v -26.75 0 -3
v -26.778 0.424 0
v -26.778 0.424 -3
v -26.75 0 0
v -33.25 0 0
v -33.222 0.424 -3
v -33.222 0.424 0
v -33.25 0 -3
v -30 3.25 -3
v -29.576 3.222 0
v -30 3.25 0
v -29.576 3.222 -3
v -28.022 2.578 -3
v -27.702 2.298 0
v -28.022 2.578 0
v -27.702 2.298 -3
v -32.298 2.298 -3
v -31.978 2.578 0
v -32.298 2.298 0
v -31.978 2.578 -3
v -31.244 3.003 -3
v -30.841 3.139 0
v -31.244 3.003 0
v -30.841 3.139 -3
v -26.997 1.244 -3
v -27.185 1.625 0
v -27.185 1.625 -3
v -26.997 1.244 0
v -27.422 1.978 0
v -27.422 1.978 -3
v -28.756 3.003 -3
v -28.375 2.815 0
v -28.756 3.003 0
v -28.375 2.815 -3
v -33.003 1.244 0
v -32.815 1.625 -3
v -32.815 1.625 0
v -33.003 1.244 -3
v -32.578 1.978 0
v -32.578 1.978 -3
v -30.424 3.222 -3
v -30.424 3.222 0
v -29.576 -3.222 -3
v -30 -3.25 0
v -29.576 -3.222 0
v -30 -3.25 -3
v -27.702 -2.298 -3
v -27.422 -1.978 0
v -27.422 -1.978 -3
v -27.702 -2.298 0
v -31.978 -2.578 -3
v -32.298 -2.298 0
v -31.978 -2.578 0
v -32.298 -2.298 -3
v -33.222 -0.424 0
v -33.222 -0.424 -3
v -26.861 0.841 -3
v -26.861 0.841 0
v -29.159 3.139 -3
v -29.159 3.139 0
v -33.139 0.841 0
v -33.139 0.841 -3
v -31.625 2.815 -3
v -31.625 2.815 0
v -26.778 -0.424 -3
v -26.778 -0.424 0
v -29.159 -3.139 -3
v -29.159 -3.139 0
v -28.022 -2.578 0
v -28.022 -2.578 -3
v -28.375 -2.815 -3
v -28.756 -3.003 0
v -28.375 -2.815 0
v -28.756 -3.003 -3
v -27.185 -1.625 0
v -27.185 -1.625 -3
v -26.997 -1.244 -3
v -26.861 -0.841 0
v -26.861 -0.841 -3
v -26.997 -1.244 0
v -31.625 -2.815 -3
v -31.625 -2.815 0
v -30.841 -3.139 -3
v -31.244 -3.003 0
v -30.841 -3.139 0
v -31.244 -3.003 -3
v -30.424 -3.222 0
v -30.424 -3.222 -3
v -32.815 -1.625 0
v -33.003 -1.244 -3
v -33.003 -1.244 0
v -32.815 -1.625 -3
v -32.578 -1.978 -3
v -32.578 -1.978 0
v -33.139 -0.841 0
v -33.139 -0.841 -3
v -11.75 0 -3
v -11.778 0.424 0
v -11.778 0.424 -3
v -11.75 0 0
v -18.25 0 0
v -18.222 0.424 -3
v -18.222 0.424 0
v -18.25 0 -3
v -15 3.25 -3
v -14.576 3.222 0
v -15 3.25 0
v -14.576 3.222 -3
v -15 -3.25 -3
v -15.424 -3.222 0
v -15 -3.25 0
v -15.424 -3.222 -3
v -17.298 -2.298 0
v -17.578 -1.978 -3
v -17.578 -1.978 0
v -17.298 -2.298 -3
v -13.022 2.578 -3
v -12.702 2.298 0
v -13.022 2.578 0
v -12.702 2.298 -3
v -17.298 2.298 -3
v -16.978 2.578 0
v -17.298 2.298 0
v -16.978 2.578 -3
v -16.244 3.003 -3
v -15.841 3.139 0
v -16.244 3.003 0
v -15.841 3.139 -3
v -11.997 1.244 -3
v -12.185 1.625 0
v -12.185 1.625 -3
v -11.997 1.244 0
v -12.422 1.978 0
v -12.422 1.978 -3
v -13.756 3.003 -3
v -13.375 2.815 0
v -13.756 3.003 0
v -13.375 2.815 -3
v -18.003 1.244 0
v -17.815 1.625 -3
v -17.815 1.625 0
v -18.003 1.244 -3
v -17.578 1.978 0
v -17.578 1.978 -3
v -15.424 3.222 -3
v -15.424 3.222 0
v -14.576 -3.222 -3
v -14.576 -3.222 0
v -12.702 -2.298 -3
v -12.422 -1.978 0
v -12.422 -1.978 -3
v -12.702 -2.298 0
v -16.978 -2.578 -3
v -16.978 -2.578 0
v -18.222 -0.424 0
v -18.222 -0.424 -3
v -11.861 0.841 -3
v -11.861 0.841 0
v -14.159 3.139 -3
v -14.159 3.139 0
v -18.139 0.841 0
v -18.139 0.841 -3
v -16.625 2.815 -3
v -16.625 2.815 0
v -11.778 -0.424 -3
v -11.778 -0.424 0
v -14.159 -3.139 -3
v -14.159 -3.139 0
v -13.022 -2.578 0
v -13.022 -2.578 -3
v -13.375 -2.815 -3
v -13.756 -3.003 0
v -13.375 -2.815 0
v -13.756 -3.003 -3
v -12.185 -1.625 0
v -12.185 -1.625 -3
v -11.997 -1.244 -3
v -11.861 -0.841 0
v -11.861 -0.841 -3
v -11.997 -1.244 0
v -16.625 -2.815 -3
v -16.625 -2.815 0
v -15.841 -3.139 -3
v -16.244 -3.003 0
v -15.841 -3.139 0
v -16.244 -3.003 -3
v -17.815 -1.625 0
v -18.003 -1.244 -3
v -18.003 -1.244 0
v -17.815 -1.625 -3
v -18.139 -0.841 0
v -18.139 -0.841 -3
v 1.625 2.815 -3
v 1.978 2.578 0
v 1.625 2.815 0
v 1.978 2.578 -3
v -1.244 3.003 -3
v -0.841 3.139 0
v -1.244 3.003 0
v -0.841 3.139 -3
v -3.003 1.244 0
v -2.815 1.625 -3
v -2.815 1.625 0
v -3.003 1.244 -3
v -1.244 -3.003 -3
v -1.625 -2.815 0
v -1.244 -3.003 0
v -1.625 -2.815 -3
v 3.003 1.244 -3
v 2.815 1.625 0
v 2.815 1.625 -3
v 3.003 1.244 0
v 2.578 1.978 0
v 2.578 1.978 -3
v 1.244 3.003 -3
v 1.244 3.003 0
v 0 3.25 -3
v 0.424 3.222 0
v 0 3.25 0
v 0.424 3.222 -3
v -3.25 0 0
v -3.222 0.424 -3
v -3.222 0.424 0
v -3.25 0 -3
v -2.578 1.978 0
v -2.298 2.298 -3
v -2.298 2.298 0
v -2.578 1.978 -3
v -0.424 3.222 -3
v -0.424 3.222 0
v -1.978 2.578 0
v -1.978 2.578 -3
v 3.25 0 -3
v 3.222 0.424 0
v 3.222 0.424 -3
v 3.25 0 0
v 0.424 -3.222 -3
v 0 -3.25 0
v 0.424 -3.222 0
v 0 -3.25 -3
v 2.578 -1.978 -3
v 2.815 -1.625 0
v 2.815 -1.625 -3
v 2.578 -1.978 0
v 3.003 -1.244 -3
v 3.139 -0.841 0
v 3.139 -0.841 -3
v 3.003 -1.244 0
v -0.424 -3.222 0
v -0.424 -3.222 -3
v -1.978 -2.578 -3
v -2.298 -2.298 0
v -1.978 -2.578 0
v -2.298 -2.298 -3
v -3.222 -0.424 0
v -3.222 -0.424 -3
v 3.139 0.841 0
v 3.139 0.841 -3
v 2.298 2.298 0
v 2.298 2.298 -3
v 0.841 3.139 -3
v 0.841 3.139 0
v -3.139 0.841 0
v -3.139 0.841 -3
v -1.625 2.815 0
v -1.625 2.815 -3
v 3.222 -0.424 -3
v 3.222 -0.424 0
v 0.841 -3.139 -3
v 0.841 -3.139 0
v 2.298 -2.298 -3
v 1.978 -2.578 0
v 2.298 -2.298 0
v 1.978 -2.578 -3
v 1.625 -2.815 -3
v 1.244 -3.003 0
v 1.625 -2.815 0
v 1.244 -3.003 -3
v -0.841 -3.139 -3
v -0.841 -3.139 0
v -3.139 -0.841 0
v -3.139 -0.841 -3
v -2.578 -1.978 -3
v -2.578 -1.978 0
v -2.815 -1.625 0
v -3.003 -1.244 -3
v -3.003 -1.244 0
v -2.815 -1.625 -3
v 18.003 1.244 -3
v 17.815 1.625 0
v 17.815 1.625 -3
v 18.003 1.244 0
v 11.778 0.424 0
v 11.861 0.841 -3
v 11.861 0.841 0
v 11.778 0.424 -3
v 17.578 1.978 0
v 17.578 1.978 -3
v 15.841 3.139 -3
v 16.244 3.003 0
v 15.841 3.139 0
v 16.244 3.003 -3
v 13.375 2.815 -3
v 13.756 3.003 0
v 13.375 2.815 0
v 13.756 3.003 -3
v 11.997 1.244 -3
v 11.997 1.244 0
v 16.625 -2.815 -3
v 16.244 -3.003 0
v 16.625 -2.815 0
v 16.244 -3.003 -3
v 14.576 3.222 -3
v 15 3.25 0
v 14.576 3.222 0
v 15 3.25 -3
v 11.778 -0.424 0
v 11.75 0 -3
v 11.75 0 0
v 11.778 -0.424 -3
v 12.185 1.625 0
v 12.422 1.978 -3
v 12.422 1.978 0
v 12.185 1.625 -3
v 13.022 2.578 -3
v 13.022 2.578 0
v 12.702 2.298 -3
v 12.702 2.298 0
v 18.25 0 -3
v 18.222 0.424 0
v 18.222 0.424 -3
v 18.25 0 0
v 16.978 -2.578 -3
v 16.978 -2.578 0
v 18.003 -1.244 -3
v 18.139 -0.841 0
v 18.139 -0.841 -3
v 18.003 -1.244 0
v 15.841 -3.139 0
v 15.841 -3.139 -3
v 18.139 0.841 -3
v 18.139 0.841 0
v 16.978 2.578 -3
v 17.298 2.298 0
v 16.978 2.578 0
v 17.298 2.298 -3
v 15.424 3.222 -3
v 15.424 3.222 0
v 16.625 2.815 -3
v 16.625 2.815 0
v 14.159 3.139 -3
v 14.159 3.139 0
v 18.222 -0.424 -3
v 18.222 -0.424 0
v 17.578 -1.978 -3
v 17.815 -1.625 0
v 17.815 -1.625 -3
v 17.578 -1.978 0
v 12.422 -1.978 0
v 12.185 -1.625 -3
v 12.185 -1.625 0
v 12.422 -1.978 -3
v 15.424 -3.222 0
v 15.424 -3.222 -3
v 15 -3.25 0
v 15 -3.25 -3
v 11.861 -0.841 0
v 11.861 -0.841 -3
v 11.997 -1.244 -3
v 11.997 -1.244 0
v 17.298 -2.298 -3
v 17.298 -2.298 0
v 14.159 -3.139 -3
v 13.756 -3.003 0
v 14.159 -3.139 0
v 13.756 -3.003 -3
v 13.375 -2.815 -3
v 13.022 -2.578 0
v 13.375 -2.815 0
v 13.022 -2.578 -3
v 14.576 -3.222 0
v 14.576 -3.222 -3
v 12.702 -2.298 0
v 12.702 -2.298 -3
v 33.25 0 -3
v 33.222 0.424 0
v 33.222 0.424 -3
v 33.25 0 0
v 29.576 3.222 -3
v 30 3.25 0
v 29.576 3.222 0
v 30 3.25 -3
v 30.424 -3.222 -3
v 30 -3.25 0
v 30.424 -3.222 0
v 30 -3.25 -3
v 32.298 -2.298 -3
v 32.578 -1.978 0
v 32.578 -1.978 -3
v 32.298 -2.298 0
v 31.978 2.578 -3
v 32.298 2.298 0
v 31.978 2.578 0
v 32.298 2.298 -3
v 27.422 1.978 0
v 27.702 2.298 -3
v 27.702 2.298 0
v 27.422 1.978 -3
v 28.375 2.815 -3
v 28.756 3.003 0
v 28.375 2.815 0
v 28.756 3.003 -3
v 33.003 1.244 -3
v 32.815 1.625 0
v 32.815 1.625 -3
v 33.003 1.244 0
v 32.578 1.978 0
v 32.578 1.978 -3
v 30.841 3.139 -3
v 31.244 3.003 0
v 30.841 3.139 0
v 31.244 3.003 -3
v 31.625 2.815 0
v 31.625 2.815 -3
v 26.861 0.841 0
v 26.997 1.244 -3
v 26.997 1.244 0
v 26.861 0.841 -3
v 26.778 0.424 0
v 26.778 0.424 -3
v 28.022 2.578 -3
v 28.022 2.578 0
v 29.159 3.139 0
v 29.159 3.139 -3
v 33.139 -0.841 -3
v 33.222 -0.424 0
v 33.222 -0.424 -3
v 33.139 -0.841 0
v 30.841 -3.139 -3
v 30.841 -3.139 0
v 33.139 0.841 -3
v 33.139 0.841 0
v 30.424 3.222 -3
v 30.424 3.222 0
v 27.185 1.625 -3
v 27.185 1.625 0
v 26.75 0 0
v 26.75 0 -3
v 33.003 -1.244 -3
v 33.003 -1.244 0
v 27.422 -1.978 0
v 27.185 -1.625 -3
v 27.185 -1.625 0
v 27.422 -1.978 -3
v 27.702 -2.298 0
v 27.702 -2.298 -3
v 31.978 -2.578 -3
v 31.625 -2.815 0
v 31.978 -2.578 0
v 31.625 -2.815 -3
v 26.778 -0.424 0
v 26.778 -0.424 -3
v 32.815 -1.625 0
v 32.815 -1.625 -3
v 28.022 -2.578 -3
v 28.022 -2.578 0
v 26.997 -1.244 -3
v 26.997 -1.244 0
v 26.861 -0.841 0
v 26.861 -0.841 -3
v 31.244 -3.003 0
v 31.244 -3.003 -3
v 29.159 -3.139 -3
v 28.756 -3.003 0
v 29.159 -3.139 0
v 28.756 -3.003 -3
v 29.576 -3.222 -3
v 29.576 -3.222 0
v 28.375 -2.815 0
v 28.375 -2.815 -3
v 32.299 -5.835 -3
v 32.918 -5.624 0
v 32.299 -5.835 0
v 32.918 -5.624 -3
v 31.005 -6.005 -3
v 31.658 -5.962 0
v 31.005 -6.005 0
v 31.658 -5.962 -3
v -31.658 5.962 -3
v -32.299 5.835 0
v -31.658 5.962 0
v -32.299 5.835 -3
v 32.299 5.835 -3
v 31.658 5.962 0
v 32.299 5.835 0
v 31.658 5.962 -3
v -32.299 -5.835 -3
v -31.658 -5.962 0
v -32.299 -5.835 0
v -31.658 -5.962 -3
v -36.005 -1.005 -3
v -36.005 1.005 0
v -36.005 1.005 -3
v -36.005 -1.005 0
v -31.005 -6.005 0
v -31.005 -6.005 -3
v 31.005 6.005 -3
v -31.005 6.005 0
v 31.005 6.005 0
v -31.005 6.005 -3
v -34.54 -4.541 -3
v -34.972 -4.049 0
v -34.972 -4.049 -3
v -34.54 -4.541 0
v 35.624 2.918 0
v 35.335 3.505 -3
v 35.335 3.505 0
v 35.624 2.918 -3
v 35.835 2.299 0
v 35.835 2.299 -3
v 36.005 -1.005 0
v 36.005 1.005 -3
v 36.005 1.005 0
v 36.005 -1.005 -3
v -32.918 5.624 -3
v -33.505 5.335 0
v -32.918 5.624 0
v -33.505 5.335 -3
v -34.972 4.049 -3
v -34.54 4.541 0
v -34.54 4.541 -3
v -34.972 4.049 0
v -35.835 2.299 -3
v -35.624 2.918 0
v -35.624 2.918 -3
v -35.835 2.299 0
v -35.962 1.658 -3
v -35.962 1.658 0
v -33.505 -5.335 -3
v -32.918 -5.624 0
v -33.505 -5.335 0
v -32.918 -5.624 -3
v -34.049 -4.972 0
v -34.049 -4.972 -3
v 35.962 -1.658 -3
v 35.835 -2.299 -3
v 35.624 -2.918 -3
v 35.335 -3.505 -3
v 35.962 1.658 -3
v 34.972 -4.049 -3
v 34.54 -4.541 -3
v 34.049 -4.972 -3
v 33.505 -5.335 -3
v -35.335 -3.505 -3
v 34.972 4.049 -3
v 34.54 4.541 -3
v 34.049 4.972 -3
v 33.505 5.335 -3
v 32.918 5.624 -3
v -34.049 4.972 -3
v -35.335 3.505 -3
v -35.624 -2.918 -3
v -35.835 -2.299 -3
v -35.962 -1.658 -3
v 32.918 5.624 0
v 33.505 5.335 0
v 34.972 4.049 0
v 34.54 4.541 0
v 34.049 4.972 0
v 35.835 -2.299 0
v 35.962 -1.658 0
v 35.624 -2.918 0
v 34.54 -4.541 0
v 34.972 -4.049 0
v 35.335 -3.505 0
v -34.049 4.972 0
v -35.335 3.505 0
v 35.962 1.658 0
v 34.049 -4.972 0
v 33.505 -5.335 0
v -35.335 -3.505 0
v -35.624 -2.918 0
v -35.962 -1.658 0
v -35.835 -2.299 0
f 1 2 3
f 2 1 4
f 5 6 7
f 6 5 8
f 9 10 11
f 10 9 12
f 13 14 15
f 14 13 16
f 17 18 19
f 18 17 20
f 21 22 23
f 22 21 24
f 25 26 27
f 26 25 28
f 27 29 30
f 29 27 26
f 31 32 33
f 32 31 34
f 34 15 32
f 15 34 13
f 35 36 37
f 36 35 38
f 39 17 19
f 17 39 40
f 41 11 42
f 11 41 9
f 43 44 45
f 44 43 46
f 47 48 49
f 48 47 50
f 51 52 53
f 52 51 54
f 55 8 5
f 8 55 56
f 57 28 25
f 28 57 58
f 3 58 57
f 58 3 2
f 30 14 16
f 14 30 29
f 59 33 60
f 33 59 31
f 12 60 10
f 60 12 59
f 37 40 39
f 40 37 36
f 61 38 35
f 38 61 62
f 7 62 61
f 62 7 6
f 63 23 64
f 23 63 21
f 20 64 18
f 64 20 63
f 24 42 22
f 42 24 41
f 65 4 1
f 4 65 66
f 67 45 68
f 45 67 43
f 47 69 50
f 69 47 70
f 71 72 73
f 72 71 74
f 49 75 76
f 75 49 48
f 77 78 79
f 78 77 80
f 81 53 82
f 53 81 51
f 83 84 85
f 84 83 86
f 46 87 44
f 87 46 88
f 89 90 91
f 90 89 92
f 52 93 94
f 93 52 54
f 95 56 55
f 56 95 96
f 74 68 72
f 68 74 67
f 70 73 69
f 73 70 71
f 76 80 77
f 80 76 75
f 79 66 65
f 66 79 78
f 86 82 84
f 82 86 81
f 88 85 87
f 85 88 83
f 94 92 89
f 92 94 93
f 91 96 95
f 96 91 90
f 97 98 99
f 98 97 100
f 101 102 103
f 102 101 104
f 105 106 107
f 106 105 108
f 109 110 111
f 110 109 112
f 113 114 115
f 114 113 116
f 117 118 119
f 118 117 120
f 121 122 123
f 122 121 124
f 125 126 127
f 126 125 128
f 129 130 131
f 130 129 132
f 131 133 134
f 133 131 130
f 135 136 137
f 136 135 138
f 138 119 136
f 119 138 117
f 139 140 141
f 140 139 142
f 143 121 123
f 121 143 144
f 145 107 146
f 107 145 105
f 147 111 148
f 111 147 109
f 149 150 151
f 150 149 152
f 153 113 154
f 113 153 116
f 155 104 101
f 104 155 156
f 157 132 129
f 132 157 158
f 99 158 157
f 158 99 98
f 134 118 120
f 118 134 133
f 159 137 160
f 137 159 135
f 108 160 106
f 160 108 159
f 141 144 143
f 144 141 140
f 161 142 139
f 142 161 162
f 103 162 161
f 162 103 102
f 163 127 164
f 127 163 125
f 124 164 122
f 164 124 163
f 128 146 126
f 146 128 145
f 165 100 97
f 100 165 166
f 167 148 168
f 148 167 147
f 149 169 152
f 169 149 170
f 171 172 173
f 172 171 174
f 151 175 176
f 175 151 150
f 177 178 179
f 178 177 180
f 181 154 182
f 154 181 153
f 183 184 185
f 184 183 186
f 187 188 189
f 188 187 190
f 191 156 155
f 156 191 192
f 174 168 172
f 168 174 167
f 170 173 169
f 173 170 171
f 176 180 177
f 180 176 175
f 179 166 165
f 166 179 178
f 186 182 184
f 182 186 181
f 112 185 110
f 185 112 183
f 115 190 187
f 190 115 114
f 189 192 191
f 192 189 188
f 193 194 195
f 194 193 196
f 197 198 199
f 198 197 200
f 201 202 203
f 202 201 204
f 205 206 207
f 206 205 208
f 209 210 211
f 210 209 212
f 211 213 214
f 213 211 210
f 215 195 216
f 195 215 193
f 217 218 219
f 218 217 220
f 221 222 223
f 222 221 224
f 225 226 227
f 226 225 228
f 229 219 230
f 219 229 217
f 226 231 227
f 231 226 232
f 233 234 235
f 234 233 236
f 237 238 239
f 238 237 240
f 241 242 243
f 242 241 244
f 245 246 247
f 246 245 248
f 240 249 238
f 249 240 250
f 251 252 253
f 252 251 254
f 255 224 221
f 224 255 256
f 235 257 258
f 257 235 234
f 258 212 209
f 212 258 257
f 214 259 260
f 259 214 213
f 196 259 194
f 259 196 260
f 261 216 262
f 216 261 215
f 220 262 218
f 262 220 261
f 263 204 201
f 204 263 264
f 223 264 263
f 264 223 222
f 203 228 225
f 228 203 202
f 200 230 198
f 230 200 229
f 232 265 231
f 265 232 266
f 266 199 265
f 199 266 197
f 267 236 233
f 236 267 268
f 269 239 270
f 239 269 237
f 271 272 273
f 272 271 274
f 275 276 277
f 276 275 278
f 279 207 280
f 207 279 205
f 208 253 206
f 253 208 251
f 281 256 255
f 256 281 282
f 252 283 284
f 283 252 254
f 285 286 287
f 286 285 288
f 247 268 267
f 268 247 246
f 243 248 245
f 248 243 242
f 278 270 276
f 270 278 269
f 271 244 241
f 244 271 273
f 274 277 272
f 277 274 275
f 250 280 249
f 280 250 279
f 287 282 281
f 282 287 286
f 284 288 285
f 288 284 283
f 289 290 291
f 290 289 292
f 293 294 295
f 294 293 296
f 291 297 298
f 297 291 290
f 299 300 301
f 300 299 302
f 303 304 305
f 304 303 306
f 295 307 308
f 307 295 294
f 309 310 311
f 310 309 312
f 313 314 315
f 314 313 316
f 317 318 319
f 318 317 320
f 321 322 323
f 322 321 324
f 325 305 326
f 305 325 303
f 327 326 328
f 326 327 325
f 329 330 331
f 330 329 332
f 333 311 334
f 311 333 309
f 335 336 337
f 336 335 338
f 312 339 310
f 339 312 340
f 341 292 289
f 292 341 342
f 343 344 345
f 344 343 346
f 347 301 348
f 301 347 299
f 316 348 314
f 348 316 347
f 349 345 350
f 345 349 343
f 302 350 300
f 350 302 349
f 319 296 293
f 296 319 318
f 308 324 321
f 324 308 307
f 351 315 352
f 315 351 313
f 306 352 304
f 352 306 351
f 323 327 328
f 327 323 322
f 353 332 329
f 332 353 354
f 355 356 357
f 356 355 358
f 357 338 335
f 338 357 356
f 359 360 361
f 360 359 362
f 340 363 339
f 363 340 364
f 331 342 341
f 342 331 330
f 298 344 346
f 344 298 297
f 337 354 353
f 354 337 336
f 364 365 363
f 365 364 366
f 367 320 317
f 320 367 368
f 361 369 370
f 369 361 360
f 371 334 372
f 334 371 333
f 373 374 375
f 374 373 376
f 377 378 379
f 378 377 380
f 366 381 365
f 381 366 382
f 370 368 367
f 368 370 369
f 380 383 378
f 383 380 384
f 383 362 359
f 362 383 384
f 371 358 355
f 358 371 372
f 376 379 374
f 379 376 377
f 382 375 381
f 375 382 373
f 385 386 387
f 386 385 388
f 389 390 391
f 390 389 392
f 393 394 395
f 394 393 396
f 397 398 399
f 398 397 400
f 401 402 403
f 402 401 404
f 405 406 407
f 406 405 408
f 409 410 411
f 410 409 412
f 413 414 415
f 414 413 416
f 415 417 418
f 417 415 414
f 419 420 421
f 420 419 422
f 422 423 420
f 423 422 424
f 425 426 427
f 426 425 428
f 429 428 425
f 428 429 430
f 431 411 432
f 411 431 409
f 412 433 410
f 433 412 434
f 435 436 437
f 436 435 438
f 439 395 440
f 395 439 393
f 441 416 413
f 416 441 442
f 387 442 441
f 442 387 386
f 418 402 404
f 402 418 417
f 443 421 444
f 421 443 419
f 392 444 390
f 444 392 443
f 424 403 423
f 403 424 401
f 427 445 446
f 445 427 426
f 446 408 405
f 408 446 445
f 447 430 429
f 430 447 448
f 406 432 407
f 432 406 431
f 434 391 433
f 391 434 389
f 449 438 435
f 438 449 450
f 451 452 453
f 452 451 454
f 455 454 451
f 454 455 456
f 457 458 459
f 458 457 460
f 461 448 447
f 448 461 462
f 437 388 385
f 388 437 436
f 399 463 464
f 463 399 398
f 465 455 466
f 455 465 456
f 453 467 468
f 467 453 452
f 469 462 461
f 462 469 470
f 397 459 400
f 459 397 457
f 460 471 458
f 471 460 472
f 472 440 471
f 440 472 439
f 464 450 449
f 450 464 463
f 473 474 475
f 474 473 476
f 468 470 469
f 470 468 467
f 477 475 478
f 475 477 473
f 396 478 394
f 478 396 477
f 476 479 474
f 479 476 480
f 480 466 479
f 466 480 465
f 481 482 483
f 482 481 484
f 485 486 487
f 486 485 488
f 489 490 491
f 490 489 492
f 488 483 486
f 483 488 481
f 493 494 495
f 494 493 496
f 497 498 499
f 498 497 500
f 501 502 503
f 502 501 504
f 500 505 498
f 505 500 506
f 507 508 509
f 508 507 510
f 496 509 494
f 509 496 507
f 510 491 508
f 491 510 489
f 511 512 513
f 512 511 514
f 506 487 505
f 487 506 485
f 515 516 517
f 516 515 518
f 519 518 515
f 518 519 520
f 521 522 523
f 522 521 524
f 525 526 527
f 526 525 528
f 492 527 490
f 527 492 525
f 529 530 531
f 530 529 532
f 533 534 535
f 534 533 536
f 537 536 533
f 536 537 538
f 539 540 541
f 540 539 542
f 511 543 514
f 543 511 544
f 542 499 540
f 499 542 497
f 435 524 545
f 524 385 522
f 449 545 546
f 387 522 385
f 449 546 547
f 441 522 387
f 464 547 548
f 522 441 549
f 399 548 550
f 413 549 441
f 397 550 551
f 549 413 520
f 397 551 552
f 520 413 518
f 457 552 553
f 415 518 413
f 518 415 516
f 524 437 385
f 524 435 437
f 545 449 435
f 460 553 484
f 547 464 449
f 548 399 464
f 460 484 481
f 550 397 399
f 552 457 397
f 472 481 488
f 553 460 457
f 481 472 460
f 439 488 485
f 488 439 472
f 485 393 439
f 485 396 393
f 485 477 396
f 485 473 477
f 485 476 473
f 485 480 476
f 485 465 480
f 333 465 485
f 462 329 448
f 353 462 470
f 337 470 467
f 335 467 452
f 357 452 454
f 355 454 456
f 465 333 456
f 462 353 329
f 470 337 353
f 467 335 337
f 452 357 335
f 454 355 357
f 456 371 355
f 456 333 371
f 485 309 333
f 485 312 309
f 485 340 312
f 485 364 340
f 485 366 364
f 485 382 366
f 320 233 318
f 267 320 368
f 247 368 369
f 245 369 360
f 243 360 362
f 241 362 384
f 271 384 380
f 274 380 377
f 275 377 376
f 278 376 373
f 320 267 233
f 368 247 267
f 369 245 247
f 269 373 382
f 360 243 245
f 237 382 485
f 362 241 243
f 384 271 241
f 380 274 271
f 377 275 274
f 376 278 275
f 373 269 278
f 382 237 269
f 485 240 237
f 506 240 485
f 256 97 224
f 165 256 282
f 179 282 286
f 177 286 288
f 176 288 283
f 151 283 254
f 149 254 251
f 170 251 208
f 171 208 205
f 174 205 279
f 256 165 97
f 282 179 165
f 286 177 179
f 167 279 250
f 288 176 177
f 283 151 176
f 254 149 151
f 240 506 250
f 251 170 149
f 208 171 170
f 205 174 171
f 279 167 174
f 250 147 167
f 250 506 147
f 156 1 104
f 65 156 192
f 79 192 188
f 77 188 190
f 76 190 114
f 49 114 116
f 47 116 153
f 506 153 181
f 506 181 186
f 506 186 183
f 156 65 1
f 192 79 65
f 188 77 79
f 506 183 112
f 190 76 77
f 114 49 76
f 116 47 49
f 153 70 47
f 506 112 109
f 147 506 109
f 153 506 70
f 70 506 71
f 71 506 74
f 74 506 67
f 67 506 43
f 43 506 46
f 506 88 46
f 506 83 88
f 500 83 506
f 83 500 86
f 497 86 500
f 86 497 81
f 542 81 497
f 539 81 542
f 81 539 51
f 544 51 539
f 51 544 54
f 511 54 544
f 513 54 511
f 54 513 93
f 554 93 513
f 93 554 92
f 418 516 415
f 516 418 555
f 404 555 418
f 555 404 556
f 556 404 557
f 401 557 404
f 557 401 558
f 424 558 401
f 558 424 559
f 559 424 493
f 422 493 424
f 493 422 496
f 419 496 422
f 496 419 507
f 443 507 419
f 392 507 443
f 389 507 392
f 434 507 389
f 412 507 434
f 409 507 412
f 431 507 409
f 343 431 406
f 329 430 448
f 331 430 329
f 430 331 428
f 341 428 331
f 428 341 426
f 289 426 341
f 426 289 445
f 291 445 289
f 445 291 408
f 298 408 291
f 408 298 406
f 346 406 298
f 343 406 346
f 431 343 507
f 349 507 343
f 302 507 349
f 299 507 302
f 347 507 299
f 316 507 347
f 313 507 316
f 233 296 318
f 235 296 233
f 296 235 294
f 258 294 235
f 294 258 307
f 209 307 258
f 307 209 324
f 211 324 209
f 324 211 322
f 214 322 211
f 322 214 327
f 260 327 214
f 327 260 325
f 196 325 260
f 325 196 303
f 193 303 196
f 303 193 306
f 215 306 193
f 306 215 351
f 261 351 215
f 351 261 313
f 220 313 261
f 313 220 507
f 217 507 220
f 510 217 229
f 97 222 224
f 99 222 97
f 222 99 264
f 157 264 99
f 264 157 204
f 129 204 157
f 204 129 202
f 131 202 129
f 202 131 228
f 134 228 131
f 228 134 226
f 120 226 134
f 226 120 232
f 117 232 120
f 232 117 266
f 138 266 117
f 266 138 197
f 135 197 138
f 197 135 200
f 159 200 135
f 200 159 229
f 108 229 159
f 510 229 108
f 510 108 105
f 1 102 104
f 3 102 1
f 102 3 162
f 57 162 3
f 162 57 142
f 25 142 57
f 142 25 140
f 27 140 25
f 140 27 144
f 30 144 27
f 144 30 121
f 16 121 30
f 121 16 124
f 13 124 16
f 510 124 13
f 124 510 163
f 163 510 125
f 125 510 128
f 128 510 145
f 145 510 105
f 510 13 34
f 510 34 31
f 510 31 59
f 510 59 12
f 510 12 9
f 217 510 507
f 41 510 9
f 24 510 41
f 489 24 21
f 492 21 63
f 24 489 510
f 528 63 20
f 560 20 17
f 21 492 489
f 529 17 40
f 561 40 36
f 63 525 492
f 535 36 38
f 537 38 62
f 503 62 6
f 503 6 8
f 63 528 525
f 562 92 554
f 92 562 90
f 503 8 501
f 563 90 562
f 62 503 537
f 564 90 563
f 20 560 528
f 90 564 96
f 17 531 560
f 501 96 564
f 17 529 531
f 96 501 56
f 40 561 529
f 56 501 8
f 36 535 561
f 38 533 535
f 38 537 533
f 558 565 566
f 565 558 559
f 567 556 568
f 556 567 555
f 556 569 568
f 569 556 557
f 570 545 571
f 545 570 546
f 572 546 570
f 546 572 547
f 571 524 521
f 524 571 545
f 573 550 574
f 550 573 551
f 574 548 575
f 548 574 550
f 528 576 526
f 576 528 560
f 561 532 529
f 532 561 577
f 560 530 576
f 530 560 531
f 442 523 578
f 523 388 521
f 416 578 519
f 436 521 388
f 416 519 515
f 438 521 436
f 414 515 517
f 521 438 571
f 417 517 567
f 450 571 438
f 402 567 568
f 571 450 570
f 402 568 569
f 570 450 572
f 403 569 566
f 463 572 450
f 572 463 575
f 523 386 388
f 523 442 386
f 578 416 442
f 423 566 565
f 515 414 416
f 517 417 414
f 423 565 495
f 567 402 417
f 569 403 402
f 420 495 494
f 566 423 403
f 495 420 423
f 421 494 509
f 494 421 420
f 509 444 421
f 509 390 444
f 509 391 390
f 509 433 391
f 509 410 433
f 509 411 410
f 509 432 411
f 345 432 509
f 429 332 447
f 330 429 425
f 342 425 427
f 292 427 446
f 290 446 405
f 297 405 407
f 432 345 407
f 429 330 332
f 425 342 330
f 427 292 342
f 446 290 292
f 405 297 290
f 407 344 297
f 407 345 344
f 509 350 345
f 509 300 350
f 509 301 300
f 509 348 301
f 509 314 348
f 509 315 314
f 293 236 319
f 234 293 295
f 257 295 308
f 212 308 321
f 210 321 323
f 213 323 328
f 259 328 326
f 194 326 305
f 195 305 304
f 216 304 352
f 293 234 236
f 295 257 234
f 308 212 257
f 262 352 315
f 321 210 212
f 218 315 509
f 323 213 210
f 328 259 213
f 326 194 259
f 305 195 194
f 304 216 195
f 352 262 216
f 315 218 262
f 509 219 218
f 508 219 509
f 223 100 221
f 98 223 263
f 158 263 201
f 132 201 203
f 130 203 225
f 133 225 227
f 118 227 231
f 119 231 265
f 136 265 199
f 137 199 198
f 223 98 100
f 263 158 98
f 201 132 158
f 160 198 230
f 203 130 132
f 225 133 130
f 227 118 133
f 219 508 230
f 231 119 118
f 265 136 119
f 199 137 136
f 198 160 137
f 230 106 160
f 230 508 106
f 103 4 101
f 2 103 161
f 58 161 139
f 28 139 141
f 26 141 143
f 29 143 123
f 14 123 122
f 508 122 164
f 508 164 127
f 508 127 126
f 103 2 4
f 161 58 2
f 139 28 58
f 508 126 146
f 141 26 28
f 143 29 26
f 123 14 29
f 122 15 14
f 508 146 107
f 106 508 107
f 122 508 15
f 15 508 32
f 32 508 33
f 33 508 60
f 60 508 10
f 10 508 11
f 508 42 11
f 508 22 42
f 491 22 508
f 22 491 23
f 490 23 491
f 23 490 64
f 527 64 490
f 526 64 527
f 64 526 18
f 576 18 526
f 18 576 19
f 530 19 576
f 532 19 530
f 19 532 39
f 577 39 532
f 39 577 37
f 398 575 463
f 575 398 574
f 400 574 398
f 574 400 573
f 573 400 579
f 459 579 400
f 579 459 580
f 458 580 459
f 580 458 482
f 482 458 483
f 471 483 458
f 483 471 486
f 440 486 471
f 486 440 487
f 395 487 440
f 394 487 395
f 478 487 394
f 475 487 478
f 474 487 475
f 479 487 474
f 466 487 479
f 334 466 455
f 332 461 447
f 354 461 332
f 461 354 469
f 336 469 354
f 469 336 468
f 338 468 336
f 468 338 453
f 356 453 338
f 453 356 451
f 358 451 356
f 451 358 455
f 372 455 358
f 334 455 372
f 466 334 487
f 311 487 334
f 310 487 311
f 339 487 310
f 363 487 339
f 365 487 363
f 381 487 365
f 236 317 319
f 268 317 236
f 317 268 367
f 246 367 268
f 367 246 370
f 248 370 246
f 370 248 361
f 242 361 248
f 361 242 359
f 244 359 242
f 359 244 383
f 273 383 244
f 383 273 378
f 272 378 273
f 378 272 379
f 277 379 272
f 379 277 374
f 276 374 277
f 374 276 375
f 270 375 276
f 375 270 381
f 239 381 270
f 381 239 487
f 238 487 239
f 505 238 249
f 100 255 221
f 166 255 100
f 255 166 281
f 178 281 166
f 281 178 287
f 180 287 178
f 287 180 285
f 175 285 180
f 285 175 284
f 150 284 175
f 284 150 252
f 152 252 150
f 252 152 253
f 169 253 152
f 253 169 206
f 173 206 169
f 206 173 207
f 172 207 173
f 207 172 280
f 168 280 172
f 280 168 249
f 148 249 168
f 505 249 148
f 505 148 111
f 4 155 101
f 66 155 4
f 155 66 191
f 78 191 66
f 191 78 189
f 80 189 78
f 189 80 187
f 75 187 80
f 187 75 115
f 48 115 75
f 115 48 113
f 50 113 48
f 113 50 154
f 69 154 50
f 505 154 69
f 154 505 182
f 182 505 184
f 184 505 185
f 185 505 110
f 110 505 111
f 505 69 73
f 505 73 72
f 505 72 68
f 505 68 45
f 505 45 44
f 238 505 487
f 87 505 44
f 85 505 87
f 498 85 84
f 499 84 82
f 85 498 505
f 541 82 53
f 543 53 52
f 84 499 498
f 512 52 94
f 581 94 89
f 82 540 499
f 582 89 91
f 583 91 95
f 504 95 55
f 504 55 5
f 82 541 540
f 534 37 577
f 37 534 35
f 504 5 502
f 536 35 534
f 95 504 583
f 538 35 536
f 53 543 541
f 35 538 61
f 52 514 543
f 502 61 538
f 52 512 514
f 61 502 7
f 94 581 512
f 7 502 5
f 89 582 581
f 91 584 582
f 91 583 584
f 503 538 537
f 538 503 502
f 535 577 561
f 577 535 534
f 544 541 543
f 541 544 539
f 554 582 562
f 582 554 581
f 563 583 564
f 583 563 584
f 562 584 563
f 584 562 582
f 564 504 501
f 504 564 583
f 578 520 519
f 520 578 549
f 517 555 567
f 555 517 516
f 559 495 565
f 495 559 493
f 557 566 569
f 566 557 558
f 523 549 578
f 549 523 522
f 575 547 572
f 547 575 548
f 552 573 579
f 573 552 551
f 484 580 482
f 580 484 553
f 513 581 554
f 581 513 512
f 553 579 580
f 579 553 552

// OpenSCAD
$fn = 48;


difference() {
	union() {
		translate(v = [0, 0, 0]) {
			difference() {
				union() {
					color(alpha = 1.0000000000, c = "Gold") {
						translate(v = [0, 0, 0]) {
							rotate(a = [0, 0, 0]) {
								translate(v = [0, 0, -3]) {
									linear_extrude(height = 3) {
										offset(r = 5) {
											square(center = true, size = [62.0100000000, 2.0100000000]);
										}
									}
								}
							}
						}
					}
				}
				union() {
					color(alpha = 1.0000000000, c = "Gold") {
						translate(v = [-30.0000000000, 0.0000000000, 0]) {
							rotate(a = [0, 0, 0]) {
								translate(v = [0, 0, -250]) {
									cylinder(h = 500, r = 3.2500000000);
								}
							}
						}
					}
					color(alpha = 1.0000000000, c = "Gold") {
						translate(v = [-15.0000000000, 0.0000000000, 0]) {
							rotate(a = [0, 0, 0]) {
								translate(v = [0, 0, -250]) {
									cylinder(h = 500, r = 3.2500000000);
								}
							}
						}
					}
					color(alpha = 1.0000000000, c = "Gold") {
						translate(v = [0.0000000000, 0.0000000000, 0]) {
							rotate(a = [0, 0, 0]) {
								translate(v = [0, 0, -250]) {
									cylinder(h = 500, r = 3.2500000000);
								}
							}
						}
					}
					color(alpha = 1.0000000000, c = "Gold") {
						translate(v = [15.0000000000, 0.0000000000, 0]) {
							rotate(a = [0, 0, 0]) {
								translate(v = [0, 0, -250]) {
									cylinder(h = 500, r = 3.2500000000);
								}
							}
						}
					}
					color(alpha = 1.0000000000, c = "Gold") {
						translate(v = [30.0000000000, 0.0000000000, 0]) {
							rotate(a = [0, 0, 0]) {
								translate(v = [0, 0, -250]) {
									cylinder(h = 500, r = 3.2500000000);
								}
							}
						}
					}
				}
			}
		}
	}
	union();
}
